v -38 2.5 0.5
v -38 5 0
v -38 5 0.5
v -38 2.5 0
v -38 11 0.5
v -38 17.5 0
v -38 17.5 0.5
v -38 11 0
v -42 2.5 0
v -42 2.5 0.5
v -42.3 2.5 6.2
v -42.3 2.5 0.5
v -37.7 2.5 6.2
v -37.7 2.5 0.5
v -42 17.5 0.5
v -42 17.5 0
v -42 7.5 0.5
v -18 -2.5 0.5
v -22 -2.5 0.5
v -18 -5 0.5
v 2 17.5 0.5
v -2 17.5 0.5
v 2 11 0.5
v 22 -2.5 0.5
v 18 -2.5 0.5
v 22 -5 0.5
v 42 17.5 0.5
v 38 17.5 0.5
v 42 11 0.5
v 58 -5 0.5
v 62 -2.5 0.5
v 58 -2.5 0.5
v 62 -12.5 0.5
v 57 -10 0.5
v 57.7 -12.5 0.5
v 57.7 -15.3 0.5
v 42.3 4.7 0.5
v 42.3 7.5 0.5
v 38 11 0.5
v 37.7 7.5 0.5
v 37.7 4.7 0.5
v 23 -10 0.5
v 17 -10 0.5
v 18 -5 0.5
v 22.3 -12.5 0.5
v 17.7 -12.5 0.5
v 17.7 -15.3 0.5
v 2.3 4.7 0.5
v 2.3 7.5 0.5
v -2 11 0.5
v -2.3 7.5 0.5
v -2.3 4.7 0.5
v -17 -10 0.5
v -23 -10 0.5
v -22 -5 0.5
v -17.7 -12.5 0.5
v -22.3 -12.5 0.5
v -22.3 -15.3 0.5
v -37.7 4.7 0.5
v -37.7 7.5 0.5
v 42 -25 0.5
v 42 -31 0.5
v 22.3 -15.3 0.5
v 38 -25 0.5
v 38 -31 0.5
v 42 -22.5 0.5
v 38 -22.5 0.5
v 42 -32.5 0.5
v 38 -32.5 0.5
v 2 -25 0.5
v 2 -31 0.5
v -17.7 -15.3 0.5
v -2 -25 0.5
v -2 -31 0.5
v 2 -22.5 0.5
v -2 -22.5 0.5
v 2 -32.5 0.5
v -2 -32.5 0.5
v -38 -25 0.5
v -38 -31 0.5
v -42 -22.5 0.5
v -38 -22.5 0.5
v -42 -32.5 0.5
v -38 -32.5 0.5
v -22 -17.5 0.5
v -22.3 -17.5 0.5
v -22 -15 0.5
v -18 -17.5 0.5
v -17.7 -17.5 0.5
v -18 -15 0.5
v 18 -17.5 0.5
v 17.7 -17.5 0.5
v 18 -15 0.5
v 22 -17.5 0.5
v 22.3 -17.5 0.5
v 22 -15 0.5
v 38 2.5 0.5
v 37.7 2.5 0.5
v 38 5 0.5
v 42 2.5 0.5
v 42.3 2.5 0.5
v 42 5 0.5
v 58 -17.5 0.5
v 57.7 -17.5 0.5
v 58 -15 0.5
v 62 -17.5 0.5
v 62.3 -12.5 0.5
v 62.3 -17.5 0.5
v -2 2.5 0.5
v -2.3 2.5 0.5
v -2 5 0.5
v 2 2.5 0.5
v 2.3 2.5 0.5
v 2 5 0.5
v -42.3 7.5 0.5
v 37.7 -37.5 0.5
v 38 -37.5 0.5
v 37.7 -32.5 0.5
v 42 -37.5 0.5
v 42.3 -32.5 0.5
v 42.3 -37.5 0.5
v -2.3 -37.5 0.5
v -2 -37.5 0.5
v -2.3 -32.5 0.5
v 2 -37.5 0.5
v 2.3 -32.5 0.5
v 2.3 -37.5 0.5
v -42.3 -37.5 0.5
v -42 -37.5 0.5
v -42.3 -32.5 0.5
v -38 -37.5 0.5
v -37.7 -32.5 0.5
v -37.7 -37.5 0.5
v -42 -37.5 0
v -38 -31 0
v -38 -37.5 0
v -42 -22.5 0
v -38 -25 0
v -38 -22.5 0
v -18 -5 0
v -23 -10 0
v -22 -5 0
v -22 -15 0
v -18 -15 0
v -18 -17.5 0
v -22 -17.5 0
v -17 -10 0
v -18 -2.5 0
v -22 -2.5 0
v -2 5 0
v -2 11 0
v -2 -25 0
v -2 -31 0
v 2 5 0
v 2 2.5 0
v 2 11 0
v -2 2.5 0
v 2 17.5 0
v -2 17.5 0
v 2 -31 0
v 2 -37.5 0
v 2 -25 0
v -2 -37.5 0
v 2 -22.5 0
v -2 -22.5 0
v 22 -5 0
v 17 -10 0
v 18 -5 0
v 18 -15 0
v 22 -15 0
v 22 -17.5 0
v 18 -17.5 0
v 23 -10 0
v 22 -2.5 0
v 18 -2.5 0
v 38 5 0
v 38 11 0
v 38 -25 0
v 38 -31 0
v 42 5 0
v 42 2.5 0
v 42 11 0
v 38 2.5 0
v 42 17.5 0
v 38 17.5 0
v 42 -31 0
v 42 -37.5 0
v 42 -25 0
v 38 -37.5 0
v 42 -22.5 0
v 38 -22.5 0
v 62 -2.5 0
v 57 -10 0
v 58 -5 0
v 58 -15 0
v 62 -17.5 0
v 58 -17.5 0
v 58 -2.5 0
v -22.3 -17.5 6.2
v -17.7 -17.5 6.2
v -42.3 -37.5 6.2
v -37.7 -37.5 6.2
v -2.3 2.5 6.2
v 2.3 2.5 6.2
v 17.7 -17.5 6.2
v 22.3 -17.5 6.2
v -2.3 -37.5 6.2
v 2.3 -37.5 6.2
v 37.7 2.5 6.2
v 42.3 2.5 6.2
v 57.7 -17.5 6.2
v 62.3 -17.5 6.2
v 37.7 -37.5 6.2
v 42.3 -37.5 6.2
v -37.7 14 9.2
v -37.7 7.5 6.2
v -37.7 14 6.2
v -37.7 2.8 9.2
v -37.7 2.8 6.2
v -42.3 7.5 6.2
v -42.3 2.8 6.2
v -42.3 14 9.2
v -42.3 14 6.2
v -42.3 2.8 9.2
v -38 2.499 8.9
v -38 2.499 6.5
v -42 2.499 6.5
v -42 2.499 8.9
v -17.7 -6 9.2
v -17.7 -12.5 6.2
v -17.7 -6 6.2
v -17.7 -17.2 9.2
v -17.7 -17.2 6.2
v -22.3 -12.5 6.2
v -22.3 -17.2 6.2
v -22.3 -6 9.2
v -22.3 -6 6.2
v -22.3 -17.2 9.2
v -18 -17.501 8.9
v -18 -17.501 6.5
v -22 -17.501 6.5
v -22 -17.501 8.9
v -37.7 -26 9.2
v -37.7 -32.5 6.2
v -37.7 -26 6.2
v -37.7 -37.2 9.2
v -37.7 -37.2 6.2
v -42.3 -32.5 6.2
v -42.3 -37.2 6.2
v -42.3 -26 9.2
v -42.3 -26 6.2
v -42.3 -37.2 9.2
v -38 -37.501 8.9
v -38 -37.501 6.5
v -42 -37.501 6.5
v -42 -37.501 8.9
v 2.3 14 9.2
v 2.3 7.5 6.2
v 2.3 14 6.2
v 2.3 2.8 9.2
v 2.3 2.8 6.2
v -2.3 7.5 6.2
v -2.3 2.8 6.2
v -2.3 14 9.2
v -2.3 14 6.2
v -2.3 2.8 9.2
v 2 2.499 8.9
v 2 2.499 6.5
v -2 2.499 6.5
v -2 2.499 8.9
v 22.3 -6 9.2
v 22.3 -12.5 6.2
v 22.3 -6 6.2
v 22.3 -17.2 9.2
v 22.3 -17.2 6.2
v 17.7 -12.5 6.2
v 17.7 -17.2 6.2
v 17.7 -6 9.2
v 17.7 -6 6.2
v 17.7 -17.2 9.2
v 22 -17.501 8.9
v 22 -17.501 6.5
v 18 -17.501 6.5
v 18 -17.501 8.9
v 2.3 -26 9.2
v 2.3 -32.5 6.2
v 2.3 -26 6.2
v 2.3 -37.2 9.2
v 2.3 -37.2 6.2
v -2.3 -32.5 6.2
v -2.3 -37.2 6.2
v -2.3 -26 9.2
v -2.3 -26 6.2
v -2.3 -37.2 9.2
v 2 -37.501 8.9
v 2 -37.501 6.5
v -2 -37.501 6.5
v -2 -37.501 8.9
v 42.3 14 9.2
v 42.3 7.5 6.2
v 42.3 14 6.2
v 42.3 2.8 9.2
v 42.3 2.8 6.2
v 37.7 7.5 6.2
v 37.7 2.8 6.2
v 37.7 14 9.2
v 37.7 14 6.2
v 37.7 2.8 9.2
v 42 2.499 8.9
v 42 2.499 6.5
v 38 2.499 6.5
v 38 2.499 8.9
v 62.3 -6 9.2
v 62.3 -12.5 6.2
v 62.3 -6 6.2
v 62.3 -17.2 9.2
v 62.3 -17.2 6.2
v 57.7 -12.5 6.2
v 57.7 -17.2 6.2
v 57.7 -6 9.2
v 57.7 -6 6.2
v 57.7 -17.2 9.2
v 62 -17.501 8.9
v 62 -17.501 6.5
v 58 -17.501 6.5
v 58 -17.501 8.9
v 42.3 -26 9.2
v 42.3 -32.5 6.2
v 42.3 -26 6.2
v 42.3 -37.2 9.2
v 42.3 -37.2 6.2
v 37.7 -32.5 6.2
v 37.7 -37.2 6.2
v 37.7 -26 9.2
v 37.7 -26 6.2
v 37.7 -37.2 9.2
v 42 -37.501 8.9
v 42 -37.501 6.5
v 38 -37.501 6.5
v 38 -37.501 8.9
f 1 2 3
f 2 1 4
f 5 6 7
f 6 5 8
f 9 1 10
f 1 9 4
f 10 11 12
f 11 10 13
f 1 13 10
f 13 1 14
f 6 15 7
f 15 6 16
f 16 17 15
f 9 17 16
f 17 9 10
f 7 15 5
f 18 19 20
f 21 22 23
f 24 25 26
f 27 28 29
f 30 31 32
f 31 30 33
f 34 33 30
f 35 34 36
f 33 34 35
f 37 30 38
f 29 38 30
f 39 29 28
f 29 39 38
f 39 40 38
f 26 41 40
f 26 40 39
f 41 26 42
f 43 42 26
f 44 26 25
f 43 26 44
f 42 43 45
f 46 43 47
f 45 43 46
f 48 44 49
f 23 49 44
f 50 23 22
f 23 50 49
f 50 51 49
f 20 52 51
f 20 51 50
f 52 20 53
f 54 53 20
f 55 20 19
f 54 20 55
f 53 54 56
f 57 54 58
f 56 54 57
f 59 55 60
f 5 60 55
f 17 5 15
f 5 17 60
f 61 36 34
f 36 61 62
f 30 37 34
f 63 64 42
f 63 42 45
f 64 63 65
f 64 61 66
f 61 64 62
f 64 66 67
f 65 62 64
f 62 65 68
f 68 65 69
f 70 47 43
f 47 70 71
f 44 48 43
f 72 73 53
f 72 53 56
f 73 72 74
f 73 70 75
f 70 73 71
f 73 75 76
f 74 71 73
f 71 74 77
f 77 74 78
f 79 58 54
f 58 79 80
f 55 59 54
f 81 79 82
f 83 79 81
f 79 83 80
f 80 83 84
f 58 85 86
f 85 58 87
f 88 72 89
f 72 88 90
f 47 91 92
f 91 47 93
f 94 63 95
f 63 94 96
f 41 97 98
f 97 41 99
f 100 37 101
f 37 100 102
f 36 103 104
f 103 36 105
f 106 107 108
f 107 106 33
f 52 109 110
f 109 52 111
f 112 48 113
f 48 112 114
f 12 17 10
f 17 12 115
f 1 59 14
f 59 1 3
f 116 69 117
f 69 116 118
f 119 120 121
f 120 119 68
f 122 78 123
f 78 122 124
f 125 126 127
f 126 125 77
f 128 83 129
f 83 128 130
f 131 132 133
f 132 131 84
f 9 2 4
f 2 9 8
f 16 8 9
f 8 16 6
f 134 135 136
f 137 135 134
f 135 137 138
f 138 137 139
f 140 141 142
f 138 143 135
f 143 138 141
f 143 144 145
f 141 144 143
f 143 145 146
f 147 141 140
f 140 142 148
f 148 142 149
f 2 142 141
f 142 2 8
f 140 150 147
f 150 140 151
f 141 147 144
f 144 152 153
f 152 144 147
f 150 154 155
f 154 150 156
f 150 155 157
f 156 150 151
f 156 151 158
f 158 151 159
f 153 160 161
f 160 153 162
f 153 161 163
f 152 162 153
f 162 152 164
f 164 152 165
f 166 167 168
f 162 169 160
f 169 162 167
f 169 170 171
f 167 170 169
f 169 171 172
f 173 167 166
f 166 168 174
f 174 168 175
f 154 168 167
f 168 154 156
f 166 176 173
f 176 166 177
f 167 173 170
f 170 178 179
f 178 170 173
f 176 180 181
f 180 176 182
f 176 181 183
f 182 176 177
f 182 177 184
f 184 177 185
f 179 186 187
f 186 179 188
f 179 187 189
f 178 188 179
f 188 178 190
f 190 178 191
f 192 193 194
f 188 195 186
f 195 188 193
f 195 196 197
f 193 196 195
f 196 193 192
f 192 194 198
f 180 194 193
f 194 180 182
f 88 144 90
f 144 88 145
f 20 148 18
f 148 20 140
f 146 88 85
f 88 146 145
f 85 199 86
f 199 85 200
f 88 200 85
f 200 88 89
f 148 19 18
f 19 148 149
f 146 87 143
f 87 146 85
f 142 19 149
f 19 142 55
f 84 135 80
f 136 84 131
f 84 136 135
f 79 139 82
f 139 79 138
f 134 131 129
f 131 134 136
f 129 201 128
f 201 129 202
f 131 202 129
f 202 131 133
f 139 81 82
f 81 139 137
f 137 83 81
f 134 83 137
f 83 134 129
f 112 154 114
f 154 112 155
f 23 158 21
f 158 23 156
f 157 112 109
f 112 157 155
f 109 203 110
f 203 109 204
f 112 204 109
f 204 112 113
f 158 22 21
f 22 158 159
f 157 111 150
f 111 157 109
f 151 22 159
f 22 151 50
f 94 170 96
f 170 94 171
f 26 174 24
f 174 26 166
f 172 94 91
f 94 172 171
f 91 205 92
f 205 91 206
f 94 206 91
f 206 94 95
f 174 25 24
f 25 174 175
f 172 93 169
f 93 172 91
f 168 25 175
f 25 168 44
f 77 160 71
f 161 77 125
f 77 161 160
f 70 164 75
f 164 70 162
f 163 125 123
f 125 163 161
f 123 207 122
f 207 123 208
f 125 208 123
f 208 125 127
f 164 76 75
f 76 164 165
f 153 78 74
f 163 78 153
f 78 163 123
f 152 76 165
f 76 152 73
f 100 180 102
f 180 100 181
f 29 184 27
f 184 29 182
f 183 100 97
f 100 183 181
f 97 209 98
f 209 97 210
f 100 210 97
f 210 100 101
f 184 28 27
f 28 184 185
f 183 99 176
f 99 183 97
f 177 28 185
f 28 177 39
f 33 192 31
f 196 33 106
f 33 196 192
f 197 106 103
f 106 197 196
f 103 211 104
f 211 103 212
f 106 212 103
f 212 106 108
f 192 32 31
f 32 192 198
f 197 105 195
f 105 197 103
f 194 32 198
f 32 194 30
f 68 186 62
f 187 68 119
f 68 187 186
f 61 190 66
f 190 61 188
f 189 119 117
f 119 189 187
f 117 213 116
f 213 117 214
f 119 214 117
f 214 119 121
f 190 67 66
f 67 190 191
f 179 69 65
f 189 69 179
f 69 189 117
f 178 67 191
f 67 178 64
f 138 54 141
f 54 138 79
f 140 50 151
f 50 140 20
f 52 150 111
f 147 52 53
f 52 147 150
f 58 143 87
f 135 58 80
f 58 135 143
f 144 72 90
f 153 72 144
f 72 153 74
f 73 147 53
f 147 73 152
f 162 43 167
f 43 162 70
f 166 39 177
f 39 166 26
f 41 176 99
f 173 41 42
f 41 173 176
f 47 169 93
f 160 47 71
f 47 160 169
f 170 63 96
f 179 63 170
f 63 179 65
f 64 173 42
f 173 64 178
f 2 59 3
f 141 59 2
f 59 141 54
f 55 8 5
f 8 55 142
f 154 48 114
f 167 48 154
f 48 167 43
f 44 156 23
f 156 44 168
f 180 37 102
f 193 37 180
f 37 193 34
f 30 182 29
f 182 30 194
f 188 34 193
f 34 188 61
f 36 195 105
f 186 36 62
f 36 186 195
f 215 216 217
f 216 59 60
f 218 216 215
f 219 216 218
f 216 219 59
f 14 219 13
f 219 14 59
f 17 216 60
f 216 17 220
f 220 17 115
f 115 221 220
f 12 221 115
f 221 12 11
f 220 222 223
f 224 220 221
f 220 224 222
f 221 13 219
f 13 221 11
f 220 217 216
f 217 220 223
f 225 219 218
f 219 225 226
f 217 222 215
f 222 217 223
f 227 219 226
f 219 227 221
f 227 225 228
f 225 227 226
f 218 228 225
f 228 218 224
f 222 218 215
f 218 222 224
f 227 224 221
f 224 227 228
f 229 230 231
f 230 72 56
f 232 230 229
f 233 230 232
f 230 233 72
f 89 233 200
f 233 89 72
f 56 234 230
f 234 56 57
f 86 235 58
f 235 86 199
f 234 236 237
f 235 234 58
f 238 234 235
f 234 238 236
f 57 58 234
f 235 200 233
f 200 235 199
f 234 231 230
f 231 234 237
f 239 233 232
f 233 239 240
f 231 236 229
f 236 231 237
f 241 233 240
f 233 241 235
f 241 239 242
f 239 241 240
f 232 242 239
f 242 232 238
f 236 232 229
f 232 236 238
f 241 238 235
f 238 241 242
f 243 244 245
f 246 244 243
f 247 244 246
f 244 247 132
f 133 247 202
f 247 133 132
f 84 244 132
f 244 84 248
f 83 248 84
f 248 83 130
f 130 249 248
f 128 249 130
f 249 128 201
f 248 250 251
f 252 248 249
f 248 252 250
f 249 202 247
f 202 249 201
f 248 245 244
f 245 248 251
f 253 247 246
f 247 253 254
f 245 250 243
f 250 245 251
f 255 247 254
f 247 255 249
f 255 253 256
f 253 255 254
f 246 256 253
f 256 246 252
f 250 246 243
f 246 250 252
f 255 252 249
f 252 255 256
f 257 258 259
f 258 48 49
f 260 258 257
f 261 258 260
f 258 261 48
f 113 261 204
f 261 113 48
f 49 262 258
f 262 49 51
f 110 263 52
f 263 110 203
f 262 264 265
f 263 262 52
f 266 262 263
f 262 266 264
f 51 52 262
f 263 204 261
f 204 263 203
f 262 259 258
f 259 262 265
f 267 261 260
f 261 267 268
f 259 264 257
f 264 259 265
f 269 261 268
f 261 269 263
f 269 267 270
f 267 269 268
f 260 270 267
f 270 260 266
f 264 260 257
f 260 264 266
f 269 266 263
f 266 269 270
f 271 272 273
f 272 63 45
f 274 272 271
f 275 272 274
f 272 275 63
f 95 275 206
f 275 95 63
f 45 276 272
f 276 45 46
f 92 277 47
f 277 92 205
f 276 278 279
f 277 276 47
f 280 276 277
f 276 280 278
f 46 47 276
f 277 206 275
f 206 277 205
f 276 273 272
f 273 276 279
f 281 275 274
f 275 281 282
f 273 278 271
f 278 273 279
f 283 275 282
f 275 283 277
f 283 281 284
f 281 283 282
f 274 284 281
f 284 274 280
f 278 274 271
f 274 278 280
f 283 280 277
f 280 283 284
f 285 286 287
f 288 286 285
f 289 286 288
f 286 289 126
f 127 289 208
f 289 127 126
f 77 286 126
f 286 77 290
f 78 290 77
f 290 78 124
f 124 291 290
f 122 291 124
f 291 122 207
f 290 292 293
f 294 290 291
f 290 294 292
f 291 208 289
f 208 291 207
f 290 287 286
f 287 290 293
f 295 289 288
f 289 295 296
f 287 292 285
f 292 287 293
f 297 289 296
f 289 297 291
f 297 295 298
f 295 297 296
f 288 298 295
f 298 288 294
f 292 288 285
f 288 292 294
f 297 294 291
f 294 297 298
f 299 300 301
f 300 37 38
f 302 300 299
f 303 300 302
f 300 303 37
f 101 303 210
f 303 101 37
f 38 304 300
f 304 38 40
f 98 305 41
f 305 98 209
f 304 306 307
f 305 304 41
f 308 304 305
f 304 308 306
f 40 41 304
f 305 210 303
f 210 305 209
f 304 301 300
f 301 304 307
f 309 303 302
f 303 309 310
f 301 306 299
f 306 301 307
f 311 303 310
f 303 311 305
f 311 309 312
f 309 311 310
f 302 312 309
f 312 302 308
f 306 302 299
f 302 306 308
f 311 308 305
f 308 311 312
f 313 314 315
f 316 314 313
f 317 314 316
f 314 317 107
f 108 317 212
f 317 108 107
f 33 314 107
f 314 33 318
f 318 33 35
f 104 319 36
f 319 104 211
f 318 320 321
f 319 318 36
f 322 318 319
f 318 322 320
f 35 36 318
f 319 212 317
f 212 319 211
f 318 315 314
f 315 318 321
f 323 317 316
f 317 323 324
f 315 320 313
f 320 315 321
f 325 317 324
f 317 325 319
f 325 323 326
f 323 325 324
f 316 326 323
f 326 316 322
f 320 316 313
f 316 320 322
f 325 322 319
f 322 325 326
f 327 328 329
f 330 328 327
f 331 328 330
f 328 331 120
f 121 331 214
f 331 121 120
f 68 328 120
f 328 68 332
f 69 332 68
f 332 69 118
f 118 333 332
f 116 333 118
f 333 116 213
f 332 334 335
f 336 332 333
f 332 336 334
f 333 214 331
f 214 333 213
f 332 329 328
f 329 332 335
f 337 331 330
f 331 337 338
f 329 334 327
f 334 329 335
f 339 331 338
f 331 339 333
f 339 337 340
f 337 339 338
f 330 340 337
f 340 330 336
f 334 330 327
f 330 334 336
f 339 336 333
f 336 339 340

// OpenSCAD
// skadis-peg-test.scad — minimum-material peg-fit test. Small pads behind
// each peg, joined by thin triangulated struts. Prints fast and lets you
// verify peg geometry and grid alignment on a real Skadis board.
// Author: John Mylchreest <jmylchreest@gmail.com>

use <../../libraries/ikea-skadis/ikea-skadis.scad>

/* [Pegs] */
peg_cols          = 3;
peg_rows          = 3;
standoff_distance = 0;
peg_retainer      = false;

// Skip [col, row] indices for a non-uniform layout.
//   [[1, 1]]            drops the right-stagger peg of the middle row → 2-1-2 diamond
//   [[1, 0], [0, 2]]    corners-only
peg_skip          = [];

/* [Frame] */
frame_thickness  = 0.5;     // Y thickness of pads + struts
pad_w            = 4;       // pad X width
pad_h            = 15;      // pad Z height
pad_corner_r     = 2;
strut_w          = 3;       // strut cross-section
strut_adjacency  = 30;      // mm — connect pegs within this centre-to-centre distance

/* [Layout] */
print_orientation = true;   // pads flat on bed, pegs sticking up

/* [Quality] */
$fa = $preview ? $fa : 1;
$fs = $preview ? $fs : 0.2;
$fn = 48;

// ---- derived ----
pad_y = -standoff_distance - frame_thickness;

// Z offset from slot centre to anchor centre. `use<>` doesn't import lib
// vars, so hard-coded. = -SKADIS_SLOT_H + SKADIS_TAB_H for default Skadis.
anchor_z_offset = -10;

function _is_skipped(i, j) =
    len([for (s = peg_skip) if (s[0] == i && s[1] == j) 1]) > 0;

// Each peg's anchor centre in the modelling frame. Pads/struts hang off these.

peg_positions = [
    for (i = [0 : peg_cols - 1])
        for (j = [0 : peg_rows - 1])
            if (!_is_skipped(i, j))
                [skadis_peg_x(i, peg_cols, "center")
                     + skadis_row_stagger(j, true, 0),
                 0,
                 skadis_peg_z(j, peg_rows, "bottom") + anchor_z_offset]
];

function _dist_xz(a, b) =
    sqrt((a[0] - b[0]) * (a[0] - b[0]) + (a[2] - b[2]) * (a[2] - b[2]));

module _pad(pos_x, pos_z) {
    translate([pos_x - pad_w / 2, pad_y, pos_z - pad_h / 2])
        cube([pad_w, frame_thickness, pad_h]);
}

// Hull two endpoint cubes. Using cubes (not cylinders + rotate-extrude)
// avoids a CGAL pickup issue earlier revisions hit.
module _strut(a, b) {
    hull() {
        for (p = [a, b])
            translate([p[0] - strut_w / 2, pad_y, p[2] - strut_w / 2])
                cube([strut_w, frame_thickness, strut_w]);
    }
}

module test_frame() {
    union() {
        for (p = peg_positions)
            _pad(p[0], p[2]);

        // i < j filter (over the full Cartesian product) avoids the deprecated
        // reversed range that `j = [i+1 : len-1]` produces at i = len-1.
        for (i = [0 : len(peg_positions) - 1])
            for (j = [0 : len(peg_positions) - 1])
                if (i < j && _dist_xz(peg_positions[i], peg_positions[j]) <= strut_adjacency)
                    _strut(peg_positions[i], peg_positions[j]);

        skadis_peg_grid(
            cols = peg_cols, rows = peg_rows,
            anchor = "center", vanchor = "bottom",
            skip = peg_skip,
            standoff = standoff_distance,
            retainer = peg_retainer
        );
    }
}

if (print_orientation) {
    translate([0, 0, standoff_distance + frame_thickness])
        rotate([90, 0, 0])
            test_frame();
} else {
    test_frame();
}
